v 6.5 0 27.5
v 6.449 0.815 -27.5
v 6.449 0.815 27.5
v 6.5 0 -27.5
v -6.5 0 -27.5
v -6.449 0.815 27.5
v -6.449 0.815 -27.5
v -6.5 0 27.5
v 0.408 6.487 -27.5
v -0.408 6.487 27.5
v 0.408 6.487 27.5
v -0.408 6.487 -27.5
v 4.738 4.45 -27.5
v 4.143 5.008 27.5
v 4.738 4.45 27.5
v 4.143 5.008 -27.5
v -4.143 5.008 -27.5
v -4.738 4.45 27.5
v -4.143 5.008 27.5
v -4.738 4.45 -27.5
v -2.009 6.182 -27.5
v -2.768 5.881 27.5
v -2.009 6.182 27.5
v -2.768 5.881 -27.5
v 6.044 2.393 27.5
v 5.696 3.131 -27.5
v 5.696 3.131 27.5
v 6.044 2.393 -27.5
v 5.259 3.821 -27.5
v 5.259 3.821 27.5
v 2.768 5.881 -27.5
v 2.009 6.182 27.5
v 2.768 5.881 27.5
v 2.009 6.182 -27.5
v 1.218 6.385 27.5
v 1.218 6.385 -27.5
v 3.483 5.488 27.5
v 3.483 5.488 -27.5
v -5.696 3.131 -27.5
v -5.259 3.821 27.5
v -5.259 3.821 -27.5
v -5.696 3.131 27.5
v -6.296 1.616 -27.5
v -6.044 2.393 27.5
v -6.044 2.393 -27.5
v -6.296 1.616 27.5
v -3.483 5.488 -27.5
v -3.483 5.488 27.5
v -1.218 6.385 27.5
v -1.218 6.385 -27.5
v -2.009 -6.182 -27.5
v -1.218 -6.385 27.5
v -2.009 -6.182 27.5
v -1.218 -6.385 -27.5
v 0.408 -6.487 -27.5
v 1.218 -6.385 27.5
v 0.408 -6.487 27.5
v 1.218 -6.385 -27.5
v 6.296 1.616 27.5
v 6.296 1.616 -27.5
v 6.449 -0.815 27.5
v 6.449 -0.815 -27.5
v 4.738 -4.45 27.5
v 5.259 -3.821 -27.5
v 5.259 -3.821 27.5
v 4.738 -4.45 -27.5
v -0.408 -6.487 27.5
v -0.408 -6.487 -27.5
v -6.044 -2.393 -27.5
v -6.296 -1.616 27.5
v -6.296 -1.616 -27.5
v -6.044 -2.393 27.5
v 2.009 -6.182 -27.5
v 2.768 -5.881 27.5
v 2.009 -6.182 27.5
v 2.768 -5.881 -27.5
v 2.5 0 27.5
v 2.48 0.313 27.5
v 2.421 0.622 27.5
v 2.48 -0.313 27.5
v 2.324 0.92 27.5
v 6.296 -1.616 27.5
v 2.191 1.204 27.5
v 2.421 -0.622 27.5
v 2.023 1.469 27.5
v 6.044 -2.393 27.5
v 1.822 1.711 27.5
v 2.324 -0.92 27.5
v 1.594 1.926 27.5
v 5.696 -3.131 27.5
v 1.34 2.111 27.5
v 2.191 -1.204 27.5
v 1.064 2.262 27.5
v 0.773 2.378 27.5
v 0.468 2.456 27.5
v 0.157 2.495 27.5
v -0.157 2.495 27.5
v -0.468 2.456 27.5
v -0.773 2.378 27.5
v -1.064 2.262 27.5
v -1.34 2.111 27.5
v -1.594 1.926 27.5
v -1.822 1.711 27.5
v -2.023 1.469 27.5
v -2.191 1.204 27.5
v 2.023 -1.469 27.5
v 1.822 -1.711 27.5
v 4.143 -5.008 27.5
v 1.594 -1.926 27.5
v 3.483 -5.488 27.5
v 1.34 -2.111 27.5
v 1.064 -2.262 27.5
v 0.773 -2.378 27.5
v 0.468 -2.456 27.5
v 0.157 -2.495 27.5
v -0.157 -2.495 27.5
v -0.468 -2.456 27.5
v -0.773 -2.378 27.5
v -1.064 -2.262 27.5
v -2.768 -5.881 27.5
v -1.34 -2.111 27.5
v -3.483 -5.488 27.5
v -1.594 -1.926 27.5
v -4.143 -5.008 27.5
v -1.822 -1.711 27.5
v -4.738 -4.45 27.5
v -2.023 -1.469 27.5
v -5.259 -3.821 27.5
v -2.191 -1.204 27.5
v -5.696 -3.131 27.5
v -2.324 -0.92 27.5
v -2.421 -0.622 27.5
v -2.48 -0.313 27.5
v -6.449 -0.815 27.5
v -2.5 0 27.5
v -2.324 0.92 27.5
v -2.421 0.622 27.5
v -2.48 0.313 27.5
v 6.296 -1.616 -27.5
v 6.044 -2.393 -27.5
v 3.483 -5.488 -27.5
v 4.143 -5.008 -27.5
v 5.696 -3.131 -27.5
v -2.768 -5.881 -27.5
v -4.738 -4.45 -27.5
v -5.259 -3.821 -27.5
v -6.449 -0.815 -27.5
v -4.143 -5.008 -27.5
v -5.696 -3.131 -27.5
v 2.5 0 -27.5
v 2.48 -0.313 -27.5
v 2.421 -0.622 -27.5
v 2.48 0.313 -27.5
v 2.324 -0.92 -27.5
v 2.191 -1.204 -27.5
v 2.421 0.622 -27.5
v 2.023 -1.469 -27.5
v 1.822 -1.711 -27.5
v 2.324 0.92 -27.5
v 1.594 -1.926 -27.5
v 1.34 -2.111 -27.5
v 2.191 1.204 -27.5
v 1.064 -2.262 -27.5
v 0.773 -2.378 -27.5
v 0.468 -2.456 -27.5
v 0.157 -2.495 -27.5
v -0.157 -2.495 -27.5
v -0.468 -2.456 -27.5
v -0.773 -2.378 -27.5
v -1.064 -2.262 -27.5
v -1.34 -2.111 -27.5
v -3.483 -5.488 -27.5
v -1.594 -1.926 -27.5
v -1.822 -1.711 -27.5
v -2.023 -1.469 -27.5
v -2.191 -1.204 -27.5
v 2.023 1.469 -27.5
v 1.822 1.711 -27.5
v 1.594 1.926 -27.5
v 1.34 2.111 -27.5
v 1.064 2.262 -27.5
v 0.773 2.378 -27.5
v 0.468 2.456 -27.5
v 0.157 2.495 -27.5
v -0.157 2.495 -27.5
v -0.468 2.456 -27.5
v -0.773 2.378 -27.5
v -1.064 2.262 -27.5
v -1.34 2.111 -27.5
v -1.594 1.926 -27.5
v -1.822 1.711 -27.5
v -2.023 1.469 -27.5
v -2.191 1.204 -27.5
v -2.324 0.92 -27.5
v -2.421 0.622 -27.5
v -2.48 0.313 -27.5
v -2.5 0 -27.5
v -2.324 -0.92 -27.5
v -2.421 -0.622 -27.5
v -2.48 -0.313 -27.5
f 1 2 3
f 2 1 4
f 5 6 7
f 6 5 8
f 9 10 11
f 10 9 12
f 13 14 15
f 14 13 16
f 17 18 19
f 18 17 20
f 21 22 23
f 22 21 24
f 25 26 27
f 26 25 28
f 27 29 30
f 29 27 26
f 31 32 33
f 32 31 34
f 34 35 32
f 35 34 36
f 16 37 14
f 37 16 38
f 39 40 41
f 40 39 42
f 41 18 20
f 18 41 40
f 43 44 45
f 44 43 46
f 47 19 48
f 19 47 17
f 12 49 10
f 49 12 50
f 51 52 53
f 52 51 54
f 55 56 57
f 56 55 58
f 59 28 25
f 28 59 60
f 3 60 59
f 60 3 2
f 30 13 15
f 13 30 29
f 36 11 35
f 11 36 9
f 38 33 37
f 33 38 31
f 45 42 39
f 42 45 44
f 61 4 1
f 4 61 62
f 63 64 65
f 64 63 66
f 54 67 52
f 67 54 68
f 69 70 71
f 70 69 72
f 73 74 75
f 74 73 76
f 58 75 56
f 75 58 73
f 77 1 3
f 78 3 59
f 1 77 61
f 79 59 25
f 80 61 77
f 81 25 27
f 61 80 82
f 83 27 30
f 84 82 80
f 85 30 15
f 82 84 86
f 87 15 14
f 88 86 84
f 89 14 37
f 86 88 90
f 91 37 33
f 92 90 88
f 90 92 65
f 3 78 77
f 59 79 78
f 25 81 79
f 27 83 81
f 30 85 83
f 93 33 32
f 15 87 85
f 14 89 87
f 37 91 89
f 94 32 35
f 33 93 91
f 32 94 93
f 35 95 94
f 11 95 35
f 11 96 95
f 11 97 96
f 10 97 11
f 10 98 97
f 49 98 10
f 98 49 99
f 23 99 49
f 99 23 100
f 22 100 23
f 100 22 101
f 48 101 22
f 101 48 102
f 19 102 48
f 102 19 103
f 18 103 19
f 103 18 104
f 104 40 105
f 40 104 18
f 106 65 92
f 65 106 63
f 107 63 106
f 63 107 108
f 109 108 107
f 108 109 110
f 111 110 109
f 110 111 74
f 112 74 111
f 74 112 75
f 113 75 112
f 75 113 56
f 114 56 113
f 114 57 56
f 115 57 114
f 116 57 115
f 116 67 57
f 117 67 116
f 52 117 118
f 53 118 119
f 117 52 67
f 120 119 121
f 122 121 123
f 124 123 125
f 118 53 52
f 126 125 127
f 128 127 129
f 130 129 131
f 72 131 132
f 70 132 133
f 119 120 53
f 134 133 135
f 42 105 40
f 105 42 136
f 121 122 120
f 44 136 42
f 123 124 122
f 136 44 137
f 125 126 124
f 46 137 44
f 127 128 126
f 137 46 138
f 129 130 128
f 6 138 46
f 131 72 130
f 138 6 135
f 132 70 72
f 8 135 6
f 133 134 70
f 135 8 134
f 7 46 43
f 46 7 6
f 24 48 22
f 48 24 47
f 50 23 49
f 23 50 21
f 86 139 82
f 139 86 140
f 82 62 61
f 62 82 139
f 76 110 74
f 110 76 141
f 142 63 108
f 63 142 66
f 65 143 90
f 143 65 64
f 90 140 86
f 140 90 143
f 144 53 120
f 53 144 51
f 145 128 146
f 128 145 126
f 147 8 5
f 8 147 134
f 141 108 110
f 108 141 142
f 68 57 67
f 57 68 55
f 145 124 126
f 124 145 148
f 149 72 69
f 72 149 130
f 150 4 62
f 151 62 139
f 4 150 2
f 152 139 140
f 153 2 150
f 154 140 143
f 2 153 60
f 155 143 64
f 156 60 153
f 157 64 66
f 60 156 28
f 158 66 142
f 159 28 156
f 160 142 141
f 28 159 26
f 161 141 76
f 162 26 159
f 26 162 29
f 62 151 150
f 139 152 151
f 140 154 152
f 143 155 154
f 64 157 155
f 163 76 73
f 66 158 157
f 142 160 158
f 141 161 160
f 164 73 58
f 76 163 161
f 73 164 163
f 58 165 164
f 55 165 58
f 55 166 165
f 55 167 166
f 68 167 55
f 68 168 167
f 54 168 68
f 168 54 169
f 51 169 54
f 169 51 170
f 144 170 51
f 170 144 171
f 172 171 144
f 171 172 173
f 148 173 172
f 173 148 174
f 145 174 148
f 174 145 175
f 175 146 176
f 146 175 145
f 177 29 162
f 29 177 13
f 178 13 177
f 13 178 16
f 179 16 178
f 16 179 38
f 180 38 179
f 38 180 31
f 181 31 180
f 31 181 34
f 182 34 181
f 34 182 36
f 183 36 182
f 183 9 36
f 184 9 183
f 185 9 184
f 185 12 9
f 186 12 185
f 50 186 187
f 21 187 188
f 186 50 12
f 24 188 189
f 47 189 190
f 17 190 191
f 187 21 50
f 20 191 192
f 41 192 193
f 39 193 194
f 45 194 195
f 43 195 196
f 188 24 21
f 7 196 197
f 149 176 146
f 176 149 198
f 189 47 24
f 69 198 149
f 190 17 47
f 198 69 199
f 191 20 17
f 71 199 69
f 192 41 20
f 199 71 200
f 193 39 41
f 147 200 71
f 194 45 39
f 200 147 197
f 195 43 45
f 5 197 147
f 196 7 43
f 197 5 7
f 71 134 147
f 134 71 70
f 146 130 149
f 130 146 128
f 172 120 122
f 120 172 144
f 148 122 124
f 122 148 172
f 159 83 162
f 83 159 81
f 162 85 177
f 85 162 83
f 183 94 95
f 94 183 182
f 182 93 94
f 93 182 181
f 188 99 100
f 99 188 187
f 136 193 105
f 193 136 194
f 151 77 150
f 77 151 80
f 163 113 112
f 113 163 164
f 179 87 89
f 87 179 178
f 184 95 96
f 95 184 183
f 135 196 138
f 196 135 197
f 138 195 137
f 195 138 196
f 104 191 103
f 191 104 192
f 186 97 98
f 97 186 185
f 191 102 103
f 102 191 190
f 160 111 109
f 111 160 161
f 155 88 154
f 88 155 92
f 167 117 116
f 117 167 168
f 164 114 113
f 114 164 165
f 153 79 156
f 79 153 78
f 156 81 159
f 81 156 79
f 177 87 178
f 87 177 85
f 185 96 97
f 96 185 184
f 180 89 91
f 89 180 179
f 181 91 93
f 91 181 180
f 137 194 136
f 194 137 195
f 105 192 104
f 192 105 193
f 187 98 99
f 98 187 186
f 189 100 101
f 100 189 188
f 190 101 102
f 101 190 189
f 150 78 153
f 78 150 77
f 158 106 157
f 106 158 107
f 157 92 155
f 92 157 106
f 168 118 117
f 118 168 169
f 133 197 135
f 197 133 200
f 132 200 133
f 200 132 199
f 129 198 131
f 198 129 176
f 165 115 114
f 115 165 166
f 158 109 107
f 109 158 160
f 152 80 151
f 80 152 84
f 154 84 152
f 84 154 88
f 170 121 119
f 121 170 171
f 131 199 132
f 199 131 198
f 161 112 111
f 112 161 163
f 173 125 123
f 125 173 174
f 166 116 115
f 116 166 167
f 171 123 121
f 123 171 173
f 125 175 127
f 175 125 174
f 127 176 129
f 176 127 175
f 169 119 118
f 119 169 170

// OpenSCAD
$fn = 50;


difference() {
	union() {
		translate(v = [0, 0, -27.5000000000]) {
			cylinder(h = 55, r = 6.5000000000);
		}
	}
	union() {
		translate(v = [0, 0, -100.0000000000]) {
			cylinder(h = 200, r = 2.5000000000);
		}
	}
}
